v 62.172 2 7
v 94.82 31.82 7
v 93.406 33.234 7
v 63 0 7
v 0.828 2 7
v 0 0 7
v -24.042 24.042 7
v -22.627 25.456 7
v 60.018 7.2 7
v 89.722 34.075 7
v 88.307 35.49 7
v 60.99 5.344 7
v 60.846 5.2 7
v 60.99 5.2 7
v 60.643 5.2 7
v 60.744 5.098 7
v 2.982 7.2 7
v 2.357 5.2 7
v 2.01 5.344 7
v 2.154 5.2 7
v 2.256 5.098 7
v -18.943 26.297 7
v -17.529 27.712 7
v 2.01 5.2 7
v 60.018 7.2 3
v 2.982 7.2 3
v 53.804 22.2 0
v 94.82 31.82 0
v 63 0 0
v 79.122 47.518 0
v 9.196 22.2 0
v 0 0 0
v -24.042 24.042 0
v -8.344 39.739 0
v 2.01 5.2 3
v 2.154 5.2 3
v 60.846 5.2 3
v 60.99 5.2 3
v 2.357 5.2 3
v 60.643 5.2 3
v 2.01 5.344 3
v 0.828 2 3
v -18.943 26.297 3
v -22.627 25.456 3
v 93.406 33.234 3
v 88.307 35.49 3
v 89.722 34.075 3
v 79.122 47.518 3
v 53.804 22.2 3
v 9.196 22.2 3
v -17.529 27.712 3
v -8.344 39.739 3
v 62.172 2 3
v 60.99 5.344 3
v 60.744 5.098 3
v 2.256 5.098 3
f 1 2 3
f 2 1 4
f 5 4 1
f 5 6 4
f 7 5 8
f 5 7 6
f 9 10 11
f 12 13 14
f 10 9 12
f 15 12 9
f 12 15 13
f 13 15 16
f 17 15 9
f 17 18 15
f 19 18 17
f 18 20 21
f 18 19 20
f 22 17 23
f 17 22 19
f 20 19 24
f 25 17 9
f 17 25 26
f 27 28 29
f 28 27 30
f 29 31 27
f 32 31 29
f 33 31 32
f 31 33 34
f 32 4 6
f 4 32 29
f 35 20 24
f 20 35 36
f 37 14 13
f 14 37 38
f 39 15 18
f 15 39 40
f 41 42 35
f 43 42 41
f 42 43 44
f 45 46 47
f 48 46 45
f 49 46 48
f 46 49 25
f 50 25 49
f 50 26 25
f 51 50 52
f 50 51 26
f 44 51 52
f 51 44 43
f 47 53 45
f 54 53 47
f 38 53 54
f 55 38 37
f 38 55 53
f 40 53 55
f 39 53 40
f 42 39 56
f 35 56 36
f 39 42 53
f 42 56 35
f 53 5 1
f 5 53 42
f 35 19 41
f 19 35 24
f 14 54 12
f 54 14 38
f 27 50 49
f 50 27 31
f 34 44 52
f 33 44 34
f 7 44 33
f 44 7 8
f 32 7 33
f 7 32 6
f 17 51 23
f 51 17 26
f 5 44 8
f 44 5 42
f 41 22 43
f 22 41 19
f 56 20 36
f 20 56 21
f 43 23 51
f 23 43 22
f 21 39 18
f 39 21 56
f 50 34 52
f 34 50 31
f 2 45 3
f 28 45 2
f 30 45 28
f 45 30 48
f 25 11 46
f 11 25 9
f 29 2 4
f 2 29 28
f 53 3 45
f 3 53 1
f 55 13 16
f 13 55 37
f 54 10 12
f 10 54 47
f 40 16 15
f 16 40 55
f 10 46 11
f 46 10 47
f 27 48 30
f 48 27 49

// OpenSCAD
BaseHeight = 3;
RailLipHeight = 4;
RailLipWidth = 2;
RailSlotWidth = 3.2;
RailWidth = RailSlotWidth + RailLipWidth * 2;
RailHeight = BaseHeight + RailLipHeight;
BaseDepth = RailWidth + 15;
WingAngle = 135;
LeftRailLength = 45;
RightRailLength = 34;
CentralRailLength = 63;
fudge = 0.02;

module Rail(length)
{
    cube([length, BaseDepth, BaseHeight]);
    difference()
    {
        cube([length, RailWidth, RailHeight]);
        translate([-.5, RailLipWidth, BaseHeight])
            cube([length + 1, RailSlotWidth, RailHeight]);
        translate([-fudge / 2, RailLipWidth + RailSlotWidth - fudge, BaseHeight])
            cube([RailLipWidth + fudge, RailLipWidth + fudge, RailHeight]);
        translate([length - RailLipWidth - fudge / 2, 
                    RailLipWidth + RailSlotWidth - fudge / 2, 
                    BaseHeight])
            cube([RailLipWidth + fudge, RailLipWidth + fudge, RailHeight]);
    }
}

module Rails()
{
    Rail(CentralRailLength);
    
    rotate([0, 0, WingAngle + 180]) 
        translate([-RightRailLength, 0, 0]) Rail(RightRailLength);    
    
    translate([CentralRailLength, 0, 0]) rotate([0, 0, 180 - WingAngle])
        Rail(LeftRailLength);   
}

//Base(60);
Rails();
